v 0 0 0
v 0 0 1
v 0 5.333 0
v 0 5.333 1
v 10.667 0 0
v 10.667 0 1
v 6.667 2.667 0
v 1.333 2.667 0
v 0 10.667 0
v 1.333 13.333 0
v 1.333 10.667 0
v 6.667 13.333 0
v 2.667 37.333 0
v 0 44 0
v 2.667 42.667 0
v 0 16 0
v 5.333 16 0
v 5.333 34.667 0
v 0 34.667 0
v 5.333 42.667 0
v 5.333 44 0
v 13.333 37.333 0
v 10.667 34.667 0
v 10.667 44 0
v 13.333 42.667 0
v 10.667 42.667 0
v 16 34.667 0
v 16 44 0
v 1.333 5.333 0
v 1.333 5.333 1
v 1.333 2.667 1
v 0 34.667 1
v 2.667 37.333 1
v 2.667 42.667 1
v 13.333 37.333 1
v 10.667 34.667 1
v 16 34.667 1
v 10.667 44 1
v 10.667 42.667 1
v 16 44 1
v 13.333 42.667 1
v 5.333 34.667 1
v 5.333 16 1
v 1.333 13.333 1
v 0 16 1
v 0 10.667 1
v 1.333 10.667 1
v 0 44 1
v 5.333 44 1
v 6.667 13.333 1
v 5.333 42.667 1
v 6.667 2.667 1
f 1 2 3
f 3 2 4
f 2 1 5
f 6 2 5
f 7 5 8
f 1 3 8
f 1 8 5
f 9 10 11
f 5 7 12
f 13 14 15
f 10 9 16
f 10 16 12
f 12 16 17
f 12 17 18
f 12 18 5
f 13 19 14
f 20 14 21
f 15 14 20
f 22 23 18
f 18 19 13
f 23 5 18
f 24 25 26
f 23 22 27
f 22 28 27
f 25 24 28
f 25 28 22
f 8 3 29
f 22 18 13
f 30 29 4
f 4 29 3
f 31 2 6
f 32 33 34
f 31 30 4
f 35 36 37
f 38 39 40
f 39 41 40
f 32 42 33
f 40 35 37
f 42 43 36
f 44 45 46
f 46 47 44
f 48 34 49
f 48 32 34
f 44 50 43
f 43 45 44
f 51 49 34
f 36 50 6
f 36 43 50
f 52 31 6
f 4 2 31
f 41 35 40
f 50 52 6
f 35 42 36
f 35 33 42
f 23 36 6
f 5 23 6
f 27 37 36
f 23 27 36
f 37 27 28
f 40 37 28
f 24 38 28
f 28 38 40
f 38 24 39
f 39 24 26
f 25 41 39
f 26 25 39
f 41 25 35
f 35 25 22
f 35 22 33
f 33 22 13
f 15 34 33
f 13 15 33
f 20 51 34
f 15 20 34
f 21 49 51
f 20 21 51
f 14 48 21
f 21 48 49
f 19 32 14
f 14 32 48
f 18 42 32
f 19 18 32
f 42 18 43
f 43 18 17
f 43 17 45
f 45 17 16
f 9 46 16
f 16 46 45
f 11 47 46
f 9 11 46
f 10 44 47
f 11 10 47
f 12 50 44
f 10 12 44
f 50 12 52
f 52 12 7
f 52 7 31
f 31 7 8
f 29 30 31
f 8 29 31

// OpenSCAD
//----------------------------------------------------------------------
// a wrench for removing taranis switch bolts
// based on barry2020's measurements for an aluminum piece:
// http://www.rcgroups.com/forums/showpost.php?p=27911574&postcount=1704
//
// this version is based on mm, will need to figure out the scale of
// the original. but it looks like the right shape.
//----------------------------------------------------------------------

ht=1;
dl=-1;
dh=ht-dl+2;
scale([16/6,16/6,1]) {
difference() {
    cube([6,16.5,ht]);                            // main piece
    union() {
        translate([4,-4,dl]) cube([6,17,dh]);     // right chunk
        translate([-1,6,dl]) cube([3,7,dh]);      // left chunk
        translate([.5,1,dl]) cube([2,4,dh]);      // bottom keyhole
        translate([-.5,2,dl]) cube([2.5,2,dh]);   // bottom keyslice
        translate([1,14,dl]) cube([4,2,dh]);      // top keyhole
        translate([2,15,dl]) cube([2,4,dh]);      // top keyslice
    }
}
}
